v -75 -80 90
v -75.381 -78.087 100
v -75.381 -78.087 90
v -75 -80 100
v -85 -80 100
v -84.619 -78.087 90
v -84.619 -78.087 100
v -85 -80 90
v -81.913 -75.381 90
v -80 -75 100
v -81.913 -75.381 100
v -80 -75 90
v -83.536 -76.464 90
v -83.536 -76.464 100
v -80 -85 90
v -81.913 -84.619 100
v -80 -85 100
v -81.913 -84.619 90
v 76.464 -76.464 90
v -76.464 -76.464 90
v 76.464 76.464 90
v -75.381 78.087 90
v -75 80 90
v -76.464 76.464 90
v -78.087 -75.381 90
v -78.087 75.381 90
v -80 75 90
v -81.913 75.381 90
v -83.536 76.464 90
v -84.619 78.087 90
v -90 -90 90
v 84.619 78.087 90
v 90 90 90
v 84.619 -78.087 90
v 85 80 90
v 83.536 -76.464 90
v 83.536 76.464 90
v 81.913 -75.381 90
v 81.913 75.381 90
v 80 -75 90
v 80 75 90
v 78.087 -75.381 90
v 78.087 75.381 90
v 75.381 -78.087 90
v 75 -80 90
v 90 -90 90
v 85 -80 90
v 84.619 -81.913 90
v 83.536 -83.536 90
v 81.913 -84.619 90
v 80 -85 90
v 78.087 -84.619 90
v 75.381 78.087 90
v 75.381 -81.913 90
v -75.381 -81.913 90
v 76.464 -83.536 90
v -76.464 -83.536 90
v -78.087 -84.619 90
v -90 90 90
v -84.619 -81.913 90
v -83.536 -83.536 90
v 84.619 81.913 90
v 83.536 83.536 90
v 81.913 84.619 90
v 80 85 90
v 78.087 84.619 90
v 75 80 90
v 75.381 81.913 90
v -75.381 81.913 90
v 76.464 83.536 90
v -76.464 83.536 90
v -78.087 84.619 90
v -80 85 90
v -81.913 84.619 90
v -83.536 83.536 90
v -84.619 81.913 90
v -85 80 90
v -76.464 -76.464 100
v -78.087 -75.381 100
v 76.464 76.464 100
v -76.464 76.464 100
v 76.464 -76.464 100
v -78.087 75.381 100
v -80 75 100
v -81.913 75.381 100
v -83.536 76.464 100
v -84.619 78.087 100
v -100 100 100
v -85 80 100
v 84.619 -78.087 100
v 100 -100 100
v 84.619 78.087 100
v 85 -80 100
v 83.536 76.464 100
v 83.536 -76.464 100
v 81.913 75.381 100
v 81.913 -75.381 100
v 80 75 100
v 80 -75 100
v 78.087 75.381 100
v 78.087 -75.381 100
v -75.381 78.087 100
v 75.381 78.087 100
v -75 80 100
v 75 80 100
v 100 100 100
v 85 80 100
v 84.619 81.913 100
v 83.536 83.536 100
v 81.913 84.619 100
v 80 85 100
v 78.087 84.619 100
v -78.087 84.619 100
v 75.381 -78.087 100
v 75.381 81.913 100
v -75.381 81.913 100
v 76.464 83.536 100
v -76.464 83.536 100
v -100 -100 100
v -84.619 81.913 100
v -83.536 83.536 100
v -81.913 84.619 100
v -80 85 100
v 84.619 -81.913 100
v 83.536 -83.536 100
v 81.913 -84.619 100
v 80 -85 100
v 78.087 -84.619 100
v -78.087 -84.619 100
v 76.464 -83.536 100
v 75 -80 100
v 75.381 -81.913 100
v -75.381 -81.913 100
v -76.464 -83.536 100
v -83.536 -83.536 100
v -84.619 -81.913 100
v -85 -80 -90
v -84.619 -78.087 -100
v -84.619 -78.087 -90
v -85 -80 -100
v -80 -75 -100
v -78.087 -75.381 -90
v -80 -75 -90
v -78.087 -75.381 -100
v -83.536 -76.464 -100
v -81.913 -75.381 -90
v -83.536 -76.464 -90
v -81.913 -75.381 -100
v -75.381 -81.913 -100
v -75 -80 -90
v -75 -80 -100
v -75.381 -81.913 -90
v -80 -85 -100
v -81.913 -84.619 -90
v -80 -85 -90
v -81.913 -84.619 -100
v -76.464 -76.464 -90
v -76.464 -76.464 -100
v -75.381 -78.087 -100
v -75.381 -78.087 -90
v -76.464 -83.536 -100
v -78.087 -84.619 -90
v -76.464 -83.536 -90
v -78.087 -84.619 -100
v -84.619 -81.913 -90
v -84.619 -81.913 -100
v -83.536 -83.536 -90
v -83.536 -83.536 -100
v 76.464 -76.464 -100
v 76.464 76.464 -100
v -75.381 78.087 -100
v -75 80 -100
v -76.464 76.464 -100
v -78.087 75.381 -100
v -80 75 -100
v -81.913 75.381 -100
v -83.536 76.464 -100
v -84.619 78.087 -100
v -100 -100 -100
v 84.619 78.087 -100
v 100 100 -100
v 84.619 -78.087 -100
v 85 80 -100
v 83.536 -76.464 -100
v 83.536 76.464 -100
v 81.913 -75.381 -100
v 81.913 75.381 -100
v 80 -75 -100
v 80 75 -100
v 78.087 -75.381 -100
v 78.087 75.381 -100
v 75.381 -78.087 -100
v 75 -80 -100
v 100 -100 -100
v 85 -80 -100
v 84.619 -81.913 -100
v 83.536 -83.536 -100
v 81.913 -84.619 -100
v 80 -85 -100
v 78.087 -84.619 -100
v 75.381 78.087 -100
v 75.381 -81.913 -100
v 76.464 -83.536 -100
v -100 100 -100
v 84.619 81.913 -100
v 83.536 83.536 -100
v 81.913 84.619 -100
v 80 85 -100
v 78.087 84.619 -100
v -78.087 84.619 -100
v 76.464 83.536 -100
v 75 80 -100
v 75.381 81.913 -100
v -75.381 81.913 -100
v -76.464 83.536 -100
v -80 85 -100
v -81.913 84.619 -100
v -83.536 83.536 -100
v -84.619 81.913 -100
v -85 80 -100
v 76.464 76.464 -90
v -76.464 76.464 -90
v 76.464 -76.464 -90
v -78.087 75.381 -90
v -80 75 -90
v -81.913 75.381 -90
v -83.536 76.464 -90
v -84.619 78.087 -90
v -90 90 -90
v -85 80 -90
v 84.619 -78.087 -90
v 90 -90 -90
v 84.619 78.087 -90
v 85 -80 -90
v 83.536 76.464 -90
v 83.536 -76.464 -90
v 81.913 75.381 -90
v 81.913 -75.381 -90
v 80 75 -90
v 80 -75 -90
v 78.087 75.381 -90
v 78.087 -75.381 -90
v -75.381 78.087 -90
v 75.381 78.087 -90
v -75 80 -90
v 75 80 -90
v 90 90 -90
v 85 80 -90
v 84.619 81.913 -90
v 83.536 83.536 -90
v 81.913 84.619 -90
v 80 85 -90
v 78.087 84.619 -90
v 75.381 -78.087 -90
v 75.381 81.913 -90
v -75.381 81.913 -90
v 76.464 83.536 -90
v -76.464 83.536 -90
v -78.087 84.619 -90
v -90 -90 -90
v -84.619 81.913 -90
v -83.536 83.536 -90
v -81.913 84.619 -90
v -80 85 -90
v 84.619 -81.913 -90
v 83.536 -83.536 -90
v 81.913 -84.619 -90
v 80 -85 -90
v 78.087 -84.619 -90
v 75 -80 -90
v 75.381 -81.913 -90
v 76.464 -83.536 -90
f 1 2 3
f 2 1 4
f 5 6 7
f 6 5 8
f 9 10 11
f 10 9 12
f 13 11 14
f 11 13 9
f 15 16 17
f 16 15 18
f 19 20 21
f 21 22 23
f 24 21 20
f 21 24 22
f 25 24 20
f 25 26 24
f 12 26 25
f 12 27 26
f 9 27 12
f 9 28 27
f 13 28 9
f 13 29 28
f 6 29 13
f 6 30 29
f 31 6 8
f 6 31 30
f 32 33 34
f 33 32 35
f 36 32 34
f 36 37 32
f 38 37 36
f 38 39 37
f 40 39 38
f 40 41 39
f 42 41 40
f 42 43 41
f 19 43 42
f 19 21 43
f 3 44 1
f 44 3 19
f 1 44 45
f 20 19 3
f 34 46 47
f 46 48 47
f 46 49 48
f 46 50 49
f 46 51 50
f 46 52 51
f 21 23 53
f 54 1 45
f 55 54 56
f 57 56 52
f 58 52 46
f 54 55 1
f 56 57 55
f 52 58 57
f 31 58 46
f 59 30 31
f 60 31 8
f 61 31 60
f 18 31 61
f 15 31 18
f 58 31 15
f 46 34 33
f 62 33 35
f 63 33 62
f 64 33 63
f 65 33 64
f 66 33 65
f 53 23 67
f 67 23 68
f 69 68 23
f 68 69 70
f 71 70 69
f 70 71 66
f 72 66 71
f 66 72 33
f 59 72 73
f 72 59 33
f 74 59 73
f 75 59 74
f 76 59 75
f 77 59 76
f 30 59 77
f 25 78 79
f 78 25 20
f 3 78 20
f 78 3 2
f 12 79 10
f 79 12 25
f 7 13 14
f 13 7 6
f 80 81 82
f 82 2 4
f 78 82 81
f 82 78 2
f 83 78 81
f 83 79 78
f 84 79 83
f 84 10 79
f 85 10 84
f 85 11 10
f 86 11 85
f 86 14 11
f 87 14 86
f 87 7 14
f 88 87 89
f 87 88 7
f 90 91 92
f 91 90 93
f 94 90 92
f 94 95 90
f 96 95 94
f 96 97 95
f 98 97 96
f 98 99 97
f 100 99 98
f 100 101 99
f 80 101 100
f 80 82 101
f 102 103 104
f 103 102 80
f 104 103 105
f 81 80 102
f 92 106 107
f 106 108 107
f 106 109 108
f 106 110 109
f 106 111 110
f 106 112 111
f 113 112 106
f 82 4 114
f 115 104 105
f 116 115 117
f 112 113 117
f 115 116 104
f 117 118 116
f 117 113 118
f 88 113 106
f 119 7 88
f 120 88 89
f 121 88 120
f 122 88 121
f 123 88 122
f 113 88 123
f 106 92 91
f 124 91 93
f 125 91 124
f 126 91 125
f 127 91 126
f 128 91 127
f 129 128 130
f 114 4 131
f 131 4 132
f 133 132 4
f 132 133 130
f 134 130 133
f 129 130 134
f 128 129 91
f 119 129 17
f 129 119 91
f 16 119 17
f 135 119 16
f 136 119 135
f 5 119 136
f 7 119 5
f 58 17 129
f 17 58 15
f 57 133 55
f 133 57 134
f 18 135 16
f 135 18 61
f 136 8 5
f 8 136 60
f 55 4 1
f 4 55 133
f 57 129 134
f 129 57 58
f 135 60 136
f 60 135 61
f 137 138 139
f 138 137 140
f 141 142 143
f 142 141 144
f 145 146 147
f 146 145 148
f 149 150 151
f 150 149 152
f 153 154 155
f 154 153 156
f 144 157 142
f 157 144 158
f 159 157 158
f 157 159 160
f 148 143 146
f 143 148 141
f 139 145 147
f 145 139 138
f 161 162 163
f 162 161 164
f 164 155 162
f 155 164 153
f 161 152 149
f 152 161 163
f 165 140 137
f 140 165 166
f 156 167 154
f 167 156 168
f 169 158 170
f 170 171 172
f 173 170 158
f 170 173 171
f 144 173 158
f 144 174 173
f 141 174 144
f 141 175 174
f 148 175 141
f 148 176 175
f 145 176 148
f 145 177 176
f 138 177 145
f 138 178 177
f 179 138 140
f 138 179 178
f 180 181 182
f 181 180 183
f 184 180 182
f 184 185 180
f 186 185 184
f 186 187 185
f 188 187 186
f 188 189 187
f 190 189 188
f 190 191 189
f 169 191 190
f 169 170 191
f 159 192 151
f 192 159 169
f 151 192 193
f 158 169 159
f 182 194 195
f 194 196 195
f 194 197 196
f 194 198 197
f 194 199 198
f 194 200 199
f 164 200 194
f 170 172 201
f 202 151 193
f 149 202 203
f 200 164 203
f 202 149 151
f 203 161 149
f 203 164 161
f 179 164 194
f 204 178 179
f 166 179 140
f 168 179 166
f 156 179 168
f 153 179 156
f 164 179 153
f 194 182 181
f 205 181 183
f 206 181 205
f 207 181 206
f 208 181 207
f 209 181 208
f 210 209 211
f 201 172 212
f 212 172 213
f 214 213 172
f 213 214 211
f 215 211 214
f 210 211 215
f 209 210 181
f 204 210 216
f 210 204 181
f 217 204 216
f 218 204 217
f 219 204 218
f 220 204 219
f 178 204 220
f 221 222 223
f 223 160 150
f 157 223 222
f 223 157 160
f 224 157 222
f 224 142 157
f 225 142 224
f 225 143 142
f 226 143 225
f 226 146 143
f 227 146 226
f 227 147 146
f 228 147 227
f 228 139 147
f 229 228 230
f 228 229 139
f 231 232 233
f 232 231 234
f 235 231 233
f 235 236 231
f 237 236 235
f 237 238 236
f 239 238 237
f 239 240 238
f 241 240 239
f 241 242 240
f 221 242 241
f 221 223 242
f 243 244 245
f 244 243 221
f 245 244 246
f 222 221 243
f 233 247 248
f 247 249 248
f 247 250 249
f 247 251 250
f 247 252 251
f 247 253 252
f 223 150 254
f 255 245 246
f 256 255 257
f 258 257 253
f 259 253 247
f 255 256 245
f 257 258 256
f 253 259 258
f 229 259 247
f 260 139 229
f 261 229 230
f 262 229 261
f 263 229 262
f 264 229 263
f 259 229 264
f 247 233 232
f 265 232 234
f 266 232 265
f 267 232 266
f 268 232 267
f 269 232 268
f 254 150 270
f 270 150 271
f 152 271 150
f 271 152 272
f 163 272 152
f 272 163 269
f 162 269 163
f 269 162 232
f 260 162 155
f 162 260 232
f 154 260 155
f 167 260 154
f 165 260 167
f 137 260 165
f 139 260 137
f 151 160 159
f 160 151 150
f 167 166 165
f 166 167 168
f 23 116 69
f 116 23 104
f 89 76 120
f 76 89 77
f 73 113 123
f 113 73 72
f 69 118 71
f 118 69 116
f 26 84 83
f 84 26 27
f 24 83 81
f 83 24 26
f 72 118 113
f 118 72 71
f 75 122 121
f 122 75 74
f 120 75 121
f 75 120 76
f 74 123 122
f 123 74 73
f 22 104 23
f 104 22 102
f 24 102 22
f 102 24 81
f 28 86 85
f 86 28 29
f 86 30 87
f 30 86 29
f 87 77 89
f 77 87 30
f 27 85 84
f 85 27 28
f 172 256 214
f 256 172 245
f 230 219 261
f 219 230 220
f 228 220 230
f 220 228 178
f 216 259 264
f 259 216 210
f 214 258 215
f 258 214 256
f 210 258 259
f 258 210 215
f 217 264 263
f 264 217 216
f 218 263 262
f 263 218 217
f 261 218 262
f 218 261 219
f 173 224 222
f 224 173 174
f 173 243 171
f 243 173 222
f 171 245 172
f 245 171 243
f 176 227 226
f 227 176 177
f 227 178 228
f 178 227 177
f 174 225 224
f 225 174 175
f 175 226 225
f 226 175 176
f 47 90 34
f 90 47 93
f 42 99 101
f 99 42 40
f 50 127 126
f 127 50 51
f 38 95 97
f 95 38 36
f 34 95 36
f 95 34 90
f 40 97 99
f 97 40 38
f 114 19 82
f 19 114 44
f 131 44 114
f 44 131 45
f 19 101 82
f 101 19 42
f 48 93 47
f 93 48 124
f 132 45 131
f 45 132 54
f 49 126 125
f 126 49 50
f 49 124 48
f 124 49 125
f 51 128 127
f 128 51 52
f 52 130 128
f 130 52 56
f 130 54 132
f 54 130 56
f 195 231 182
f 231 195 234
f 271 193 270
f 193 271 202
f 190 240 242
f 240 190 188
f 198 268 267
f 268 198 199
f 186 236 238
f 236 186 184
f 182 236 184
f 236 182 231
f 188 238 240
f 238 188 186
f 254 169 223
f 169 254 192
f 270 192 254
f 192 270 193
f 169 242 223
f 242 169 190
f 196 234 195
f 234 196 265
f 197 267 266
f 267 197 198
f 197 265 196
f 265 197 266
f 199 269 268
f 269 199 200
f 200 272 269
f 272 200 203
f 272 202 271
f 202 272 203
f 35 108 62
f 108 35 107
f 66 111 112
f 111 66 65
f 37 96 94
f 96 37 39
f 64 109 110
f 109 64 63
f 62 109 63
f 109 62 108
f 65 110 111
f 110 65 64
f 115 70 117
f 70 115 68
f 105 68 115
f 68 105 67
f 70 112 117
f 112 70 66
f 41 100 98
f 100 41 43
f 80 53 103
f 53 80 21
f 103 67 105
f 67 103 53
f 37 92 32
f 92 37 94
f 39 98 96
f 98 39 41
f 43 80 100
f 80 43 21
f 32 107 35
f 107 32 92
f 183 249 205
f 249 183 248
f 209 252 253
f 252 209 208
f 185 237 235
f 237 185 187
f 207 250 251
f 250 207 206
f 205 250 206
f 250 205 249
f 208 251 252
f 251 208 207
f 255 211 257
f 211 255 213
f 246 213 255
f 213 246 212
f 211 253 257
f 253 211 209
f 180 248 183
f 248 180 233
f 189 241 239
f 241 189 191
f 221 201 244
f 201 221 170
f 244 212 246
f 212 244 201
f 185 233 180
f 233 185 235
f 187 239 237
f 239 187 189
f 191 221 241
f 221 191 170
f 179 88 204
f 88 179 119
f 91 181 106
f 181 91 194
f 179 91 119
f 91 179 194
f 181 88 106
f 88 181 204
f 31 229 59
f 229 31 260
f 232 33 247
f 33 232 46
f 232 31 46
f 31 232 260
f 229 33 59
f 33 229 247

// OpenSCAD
outer_size = 200;
wall_thickness = 10;

// User sets exactly one of these:
peg_diameter = 10;     // set to 0 if you want to define padding instead
peg_padding = 3;      // set to 0 if you want to define diameter instead

// Compute missing value:
peg_diameter_final = (peg_diameter > 0) ? peg_diameter : (wall_thickness - 2 * peg_padding);
peg_padding_final = (peg_padding > 0) ? peg_padding : (wall_thickness - peg_diameter) / 2;

peg_height = 10;
peg_offset = 20;

module box_with_peg_holes() {
    difference() {
        cube(outer_size, center=true);
        cube(outer_size - 2*wall_thickness, center=true);

        for (x_sign = [-1, 1])
            for (y_sign = [-1, 1]) {
                translate([
                    x_sign*(outer_size/2 - peg_offset),
                    y_sign*(outer_size/2 - peg_offset),
                    outer_size/2 - wall_thickness
                ])
                cylinder(h=peg_height, d=peg_diameter_final, center=false);

                translate([
                    x_sign*(outer_size/2 - peg_offset),
                    y_sign*(outer_size/2 - peg_offset),
                    -outer_size/2
                ])
                cylinder(h=peg_height, d=peg_diameter_final, center=false);
            }
    }
}

module peg() {
    cylinder(h=peg_height, d=peg_diameter_final, center=false);
}

box_with_peg_holes();

// Print pegs separately (4 copies):
// translate([-20, 0, 0]) peg();
// translate([0, 0, 0]) peg();
// translate([20, 0, 0]) peg();
// translate([40, 0, 0]) peg();
